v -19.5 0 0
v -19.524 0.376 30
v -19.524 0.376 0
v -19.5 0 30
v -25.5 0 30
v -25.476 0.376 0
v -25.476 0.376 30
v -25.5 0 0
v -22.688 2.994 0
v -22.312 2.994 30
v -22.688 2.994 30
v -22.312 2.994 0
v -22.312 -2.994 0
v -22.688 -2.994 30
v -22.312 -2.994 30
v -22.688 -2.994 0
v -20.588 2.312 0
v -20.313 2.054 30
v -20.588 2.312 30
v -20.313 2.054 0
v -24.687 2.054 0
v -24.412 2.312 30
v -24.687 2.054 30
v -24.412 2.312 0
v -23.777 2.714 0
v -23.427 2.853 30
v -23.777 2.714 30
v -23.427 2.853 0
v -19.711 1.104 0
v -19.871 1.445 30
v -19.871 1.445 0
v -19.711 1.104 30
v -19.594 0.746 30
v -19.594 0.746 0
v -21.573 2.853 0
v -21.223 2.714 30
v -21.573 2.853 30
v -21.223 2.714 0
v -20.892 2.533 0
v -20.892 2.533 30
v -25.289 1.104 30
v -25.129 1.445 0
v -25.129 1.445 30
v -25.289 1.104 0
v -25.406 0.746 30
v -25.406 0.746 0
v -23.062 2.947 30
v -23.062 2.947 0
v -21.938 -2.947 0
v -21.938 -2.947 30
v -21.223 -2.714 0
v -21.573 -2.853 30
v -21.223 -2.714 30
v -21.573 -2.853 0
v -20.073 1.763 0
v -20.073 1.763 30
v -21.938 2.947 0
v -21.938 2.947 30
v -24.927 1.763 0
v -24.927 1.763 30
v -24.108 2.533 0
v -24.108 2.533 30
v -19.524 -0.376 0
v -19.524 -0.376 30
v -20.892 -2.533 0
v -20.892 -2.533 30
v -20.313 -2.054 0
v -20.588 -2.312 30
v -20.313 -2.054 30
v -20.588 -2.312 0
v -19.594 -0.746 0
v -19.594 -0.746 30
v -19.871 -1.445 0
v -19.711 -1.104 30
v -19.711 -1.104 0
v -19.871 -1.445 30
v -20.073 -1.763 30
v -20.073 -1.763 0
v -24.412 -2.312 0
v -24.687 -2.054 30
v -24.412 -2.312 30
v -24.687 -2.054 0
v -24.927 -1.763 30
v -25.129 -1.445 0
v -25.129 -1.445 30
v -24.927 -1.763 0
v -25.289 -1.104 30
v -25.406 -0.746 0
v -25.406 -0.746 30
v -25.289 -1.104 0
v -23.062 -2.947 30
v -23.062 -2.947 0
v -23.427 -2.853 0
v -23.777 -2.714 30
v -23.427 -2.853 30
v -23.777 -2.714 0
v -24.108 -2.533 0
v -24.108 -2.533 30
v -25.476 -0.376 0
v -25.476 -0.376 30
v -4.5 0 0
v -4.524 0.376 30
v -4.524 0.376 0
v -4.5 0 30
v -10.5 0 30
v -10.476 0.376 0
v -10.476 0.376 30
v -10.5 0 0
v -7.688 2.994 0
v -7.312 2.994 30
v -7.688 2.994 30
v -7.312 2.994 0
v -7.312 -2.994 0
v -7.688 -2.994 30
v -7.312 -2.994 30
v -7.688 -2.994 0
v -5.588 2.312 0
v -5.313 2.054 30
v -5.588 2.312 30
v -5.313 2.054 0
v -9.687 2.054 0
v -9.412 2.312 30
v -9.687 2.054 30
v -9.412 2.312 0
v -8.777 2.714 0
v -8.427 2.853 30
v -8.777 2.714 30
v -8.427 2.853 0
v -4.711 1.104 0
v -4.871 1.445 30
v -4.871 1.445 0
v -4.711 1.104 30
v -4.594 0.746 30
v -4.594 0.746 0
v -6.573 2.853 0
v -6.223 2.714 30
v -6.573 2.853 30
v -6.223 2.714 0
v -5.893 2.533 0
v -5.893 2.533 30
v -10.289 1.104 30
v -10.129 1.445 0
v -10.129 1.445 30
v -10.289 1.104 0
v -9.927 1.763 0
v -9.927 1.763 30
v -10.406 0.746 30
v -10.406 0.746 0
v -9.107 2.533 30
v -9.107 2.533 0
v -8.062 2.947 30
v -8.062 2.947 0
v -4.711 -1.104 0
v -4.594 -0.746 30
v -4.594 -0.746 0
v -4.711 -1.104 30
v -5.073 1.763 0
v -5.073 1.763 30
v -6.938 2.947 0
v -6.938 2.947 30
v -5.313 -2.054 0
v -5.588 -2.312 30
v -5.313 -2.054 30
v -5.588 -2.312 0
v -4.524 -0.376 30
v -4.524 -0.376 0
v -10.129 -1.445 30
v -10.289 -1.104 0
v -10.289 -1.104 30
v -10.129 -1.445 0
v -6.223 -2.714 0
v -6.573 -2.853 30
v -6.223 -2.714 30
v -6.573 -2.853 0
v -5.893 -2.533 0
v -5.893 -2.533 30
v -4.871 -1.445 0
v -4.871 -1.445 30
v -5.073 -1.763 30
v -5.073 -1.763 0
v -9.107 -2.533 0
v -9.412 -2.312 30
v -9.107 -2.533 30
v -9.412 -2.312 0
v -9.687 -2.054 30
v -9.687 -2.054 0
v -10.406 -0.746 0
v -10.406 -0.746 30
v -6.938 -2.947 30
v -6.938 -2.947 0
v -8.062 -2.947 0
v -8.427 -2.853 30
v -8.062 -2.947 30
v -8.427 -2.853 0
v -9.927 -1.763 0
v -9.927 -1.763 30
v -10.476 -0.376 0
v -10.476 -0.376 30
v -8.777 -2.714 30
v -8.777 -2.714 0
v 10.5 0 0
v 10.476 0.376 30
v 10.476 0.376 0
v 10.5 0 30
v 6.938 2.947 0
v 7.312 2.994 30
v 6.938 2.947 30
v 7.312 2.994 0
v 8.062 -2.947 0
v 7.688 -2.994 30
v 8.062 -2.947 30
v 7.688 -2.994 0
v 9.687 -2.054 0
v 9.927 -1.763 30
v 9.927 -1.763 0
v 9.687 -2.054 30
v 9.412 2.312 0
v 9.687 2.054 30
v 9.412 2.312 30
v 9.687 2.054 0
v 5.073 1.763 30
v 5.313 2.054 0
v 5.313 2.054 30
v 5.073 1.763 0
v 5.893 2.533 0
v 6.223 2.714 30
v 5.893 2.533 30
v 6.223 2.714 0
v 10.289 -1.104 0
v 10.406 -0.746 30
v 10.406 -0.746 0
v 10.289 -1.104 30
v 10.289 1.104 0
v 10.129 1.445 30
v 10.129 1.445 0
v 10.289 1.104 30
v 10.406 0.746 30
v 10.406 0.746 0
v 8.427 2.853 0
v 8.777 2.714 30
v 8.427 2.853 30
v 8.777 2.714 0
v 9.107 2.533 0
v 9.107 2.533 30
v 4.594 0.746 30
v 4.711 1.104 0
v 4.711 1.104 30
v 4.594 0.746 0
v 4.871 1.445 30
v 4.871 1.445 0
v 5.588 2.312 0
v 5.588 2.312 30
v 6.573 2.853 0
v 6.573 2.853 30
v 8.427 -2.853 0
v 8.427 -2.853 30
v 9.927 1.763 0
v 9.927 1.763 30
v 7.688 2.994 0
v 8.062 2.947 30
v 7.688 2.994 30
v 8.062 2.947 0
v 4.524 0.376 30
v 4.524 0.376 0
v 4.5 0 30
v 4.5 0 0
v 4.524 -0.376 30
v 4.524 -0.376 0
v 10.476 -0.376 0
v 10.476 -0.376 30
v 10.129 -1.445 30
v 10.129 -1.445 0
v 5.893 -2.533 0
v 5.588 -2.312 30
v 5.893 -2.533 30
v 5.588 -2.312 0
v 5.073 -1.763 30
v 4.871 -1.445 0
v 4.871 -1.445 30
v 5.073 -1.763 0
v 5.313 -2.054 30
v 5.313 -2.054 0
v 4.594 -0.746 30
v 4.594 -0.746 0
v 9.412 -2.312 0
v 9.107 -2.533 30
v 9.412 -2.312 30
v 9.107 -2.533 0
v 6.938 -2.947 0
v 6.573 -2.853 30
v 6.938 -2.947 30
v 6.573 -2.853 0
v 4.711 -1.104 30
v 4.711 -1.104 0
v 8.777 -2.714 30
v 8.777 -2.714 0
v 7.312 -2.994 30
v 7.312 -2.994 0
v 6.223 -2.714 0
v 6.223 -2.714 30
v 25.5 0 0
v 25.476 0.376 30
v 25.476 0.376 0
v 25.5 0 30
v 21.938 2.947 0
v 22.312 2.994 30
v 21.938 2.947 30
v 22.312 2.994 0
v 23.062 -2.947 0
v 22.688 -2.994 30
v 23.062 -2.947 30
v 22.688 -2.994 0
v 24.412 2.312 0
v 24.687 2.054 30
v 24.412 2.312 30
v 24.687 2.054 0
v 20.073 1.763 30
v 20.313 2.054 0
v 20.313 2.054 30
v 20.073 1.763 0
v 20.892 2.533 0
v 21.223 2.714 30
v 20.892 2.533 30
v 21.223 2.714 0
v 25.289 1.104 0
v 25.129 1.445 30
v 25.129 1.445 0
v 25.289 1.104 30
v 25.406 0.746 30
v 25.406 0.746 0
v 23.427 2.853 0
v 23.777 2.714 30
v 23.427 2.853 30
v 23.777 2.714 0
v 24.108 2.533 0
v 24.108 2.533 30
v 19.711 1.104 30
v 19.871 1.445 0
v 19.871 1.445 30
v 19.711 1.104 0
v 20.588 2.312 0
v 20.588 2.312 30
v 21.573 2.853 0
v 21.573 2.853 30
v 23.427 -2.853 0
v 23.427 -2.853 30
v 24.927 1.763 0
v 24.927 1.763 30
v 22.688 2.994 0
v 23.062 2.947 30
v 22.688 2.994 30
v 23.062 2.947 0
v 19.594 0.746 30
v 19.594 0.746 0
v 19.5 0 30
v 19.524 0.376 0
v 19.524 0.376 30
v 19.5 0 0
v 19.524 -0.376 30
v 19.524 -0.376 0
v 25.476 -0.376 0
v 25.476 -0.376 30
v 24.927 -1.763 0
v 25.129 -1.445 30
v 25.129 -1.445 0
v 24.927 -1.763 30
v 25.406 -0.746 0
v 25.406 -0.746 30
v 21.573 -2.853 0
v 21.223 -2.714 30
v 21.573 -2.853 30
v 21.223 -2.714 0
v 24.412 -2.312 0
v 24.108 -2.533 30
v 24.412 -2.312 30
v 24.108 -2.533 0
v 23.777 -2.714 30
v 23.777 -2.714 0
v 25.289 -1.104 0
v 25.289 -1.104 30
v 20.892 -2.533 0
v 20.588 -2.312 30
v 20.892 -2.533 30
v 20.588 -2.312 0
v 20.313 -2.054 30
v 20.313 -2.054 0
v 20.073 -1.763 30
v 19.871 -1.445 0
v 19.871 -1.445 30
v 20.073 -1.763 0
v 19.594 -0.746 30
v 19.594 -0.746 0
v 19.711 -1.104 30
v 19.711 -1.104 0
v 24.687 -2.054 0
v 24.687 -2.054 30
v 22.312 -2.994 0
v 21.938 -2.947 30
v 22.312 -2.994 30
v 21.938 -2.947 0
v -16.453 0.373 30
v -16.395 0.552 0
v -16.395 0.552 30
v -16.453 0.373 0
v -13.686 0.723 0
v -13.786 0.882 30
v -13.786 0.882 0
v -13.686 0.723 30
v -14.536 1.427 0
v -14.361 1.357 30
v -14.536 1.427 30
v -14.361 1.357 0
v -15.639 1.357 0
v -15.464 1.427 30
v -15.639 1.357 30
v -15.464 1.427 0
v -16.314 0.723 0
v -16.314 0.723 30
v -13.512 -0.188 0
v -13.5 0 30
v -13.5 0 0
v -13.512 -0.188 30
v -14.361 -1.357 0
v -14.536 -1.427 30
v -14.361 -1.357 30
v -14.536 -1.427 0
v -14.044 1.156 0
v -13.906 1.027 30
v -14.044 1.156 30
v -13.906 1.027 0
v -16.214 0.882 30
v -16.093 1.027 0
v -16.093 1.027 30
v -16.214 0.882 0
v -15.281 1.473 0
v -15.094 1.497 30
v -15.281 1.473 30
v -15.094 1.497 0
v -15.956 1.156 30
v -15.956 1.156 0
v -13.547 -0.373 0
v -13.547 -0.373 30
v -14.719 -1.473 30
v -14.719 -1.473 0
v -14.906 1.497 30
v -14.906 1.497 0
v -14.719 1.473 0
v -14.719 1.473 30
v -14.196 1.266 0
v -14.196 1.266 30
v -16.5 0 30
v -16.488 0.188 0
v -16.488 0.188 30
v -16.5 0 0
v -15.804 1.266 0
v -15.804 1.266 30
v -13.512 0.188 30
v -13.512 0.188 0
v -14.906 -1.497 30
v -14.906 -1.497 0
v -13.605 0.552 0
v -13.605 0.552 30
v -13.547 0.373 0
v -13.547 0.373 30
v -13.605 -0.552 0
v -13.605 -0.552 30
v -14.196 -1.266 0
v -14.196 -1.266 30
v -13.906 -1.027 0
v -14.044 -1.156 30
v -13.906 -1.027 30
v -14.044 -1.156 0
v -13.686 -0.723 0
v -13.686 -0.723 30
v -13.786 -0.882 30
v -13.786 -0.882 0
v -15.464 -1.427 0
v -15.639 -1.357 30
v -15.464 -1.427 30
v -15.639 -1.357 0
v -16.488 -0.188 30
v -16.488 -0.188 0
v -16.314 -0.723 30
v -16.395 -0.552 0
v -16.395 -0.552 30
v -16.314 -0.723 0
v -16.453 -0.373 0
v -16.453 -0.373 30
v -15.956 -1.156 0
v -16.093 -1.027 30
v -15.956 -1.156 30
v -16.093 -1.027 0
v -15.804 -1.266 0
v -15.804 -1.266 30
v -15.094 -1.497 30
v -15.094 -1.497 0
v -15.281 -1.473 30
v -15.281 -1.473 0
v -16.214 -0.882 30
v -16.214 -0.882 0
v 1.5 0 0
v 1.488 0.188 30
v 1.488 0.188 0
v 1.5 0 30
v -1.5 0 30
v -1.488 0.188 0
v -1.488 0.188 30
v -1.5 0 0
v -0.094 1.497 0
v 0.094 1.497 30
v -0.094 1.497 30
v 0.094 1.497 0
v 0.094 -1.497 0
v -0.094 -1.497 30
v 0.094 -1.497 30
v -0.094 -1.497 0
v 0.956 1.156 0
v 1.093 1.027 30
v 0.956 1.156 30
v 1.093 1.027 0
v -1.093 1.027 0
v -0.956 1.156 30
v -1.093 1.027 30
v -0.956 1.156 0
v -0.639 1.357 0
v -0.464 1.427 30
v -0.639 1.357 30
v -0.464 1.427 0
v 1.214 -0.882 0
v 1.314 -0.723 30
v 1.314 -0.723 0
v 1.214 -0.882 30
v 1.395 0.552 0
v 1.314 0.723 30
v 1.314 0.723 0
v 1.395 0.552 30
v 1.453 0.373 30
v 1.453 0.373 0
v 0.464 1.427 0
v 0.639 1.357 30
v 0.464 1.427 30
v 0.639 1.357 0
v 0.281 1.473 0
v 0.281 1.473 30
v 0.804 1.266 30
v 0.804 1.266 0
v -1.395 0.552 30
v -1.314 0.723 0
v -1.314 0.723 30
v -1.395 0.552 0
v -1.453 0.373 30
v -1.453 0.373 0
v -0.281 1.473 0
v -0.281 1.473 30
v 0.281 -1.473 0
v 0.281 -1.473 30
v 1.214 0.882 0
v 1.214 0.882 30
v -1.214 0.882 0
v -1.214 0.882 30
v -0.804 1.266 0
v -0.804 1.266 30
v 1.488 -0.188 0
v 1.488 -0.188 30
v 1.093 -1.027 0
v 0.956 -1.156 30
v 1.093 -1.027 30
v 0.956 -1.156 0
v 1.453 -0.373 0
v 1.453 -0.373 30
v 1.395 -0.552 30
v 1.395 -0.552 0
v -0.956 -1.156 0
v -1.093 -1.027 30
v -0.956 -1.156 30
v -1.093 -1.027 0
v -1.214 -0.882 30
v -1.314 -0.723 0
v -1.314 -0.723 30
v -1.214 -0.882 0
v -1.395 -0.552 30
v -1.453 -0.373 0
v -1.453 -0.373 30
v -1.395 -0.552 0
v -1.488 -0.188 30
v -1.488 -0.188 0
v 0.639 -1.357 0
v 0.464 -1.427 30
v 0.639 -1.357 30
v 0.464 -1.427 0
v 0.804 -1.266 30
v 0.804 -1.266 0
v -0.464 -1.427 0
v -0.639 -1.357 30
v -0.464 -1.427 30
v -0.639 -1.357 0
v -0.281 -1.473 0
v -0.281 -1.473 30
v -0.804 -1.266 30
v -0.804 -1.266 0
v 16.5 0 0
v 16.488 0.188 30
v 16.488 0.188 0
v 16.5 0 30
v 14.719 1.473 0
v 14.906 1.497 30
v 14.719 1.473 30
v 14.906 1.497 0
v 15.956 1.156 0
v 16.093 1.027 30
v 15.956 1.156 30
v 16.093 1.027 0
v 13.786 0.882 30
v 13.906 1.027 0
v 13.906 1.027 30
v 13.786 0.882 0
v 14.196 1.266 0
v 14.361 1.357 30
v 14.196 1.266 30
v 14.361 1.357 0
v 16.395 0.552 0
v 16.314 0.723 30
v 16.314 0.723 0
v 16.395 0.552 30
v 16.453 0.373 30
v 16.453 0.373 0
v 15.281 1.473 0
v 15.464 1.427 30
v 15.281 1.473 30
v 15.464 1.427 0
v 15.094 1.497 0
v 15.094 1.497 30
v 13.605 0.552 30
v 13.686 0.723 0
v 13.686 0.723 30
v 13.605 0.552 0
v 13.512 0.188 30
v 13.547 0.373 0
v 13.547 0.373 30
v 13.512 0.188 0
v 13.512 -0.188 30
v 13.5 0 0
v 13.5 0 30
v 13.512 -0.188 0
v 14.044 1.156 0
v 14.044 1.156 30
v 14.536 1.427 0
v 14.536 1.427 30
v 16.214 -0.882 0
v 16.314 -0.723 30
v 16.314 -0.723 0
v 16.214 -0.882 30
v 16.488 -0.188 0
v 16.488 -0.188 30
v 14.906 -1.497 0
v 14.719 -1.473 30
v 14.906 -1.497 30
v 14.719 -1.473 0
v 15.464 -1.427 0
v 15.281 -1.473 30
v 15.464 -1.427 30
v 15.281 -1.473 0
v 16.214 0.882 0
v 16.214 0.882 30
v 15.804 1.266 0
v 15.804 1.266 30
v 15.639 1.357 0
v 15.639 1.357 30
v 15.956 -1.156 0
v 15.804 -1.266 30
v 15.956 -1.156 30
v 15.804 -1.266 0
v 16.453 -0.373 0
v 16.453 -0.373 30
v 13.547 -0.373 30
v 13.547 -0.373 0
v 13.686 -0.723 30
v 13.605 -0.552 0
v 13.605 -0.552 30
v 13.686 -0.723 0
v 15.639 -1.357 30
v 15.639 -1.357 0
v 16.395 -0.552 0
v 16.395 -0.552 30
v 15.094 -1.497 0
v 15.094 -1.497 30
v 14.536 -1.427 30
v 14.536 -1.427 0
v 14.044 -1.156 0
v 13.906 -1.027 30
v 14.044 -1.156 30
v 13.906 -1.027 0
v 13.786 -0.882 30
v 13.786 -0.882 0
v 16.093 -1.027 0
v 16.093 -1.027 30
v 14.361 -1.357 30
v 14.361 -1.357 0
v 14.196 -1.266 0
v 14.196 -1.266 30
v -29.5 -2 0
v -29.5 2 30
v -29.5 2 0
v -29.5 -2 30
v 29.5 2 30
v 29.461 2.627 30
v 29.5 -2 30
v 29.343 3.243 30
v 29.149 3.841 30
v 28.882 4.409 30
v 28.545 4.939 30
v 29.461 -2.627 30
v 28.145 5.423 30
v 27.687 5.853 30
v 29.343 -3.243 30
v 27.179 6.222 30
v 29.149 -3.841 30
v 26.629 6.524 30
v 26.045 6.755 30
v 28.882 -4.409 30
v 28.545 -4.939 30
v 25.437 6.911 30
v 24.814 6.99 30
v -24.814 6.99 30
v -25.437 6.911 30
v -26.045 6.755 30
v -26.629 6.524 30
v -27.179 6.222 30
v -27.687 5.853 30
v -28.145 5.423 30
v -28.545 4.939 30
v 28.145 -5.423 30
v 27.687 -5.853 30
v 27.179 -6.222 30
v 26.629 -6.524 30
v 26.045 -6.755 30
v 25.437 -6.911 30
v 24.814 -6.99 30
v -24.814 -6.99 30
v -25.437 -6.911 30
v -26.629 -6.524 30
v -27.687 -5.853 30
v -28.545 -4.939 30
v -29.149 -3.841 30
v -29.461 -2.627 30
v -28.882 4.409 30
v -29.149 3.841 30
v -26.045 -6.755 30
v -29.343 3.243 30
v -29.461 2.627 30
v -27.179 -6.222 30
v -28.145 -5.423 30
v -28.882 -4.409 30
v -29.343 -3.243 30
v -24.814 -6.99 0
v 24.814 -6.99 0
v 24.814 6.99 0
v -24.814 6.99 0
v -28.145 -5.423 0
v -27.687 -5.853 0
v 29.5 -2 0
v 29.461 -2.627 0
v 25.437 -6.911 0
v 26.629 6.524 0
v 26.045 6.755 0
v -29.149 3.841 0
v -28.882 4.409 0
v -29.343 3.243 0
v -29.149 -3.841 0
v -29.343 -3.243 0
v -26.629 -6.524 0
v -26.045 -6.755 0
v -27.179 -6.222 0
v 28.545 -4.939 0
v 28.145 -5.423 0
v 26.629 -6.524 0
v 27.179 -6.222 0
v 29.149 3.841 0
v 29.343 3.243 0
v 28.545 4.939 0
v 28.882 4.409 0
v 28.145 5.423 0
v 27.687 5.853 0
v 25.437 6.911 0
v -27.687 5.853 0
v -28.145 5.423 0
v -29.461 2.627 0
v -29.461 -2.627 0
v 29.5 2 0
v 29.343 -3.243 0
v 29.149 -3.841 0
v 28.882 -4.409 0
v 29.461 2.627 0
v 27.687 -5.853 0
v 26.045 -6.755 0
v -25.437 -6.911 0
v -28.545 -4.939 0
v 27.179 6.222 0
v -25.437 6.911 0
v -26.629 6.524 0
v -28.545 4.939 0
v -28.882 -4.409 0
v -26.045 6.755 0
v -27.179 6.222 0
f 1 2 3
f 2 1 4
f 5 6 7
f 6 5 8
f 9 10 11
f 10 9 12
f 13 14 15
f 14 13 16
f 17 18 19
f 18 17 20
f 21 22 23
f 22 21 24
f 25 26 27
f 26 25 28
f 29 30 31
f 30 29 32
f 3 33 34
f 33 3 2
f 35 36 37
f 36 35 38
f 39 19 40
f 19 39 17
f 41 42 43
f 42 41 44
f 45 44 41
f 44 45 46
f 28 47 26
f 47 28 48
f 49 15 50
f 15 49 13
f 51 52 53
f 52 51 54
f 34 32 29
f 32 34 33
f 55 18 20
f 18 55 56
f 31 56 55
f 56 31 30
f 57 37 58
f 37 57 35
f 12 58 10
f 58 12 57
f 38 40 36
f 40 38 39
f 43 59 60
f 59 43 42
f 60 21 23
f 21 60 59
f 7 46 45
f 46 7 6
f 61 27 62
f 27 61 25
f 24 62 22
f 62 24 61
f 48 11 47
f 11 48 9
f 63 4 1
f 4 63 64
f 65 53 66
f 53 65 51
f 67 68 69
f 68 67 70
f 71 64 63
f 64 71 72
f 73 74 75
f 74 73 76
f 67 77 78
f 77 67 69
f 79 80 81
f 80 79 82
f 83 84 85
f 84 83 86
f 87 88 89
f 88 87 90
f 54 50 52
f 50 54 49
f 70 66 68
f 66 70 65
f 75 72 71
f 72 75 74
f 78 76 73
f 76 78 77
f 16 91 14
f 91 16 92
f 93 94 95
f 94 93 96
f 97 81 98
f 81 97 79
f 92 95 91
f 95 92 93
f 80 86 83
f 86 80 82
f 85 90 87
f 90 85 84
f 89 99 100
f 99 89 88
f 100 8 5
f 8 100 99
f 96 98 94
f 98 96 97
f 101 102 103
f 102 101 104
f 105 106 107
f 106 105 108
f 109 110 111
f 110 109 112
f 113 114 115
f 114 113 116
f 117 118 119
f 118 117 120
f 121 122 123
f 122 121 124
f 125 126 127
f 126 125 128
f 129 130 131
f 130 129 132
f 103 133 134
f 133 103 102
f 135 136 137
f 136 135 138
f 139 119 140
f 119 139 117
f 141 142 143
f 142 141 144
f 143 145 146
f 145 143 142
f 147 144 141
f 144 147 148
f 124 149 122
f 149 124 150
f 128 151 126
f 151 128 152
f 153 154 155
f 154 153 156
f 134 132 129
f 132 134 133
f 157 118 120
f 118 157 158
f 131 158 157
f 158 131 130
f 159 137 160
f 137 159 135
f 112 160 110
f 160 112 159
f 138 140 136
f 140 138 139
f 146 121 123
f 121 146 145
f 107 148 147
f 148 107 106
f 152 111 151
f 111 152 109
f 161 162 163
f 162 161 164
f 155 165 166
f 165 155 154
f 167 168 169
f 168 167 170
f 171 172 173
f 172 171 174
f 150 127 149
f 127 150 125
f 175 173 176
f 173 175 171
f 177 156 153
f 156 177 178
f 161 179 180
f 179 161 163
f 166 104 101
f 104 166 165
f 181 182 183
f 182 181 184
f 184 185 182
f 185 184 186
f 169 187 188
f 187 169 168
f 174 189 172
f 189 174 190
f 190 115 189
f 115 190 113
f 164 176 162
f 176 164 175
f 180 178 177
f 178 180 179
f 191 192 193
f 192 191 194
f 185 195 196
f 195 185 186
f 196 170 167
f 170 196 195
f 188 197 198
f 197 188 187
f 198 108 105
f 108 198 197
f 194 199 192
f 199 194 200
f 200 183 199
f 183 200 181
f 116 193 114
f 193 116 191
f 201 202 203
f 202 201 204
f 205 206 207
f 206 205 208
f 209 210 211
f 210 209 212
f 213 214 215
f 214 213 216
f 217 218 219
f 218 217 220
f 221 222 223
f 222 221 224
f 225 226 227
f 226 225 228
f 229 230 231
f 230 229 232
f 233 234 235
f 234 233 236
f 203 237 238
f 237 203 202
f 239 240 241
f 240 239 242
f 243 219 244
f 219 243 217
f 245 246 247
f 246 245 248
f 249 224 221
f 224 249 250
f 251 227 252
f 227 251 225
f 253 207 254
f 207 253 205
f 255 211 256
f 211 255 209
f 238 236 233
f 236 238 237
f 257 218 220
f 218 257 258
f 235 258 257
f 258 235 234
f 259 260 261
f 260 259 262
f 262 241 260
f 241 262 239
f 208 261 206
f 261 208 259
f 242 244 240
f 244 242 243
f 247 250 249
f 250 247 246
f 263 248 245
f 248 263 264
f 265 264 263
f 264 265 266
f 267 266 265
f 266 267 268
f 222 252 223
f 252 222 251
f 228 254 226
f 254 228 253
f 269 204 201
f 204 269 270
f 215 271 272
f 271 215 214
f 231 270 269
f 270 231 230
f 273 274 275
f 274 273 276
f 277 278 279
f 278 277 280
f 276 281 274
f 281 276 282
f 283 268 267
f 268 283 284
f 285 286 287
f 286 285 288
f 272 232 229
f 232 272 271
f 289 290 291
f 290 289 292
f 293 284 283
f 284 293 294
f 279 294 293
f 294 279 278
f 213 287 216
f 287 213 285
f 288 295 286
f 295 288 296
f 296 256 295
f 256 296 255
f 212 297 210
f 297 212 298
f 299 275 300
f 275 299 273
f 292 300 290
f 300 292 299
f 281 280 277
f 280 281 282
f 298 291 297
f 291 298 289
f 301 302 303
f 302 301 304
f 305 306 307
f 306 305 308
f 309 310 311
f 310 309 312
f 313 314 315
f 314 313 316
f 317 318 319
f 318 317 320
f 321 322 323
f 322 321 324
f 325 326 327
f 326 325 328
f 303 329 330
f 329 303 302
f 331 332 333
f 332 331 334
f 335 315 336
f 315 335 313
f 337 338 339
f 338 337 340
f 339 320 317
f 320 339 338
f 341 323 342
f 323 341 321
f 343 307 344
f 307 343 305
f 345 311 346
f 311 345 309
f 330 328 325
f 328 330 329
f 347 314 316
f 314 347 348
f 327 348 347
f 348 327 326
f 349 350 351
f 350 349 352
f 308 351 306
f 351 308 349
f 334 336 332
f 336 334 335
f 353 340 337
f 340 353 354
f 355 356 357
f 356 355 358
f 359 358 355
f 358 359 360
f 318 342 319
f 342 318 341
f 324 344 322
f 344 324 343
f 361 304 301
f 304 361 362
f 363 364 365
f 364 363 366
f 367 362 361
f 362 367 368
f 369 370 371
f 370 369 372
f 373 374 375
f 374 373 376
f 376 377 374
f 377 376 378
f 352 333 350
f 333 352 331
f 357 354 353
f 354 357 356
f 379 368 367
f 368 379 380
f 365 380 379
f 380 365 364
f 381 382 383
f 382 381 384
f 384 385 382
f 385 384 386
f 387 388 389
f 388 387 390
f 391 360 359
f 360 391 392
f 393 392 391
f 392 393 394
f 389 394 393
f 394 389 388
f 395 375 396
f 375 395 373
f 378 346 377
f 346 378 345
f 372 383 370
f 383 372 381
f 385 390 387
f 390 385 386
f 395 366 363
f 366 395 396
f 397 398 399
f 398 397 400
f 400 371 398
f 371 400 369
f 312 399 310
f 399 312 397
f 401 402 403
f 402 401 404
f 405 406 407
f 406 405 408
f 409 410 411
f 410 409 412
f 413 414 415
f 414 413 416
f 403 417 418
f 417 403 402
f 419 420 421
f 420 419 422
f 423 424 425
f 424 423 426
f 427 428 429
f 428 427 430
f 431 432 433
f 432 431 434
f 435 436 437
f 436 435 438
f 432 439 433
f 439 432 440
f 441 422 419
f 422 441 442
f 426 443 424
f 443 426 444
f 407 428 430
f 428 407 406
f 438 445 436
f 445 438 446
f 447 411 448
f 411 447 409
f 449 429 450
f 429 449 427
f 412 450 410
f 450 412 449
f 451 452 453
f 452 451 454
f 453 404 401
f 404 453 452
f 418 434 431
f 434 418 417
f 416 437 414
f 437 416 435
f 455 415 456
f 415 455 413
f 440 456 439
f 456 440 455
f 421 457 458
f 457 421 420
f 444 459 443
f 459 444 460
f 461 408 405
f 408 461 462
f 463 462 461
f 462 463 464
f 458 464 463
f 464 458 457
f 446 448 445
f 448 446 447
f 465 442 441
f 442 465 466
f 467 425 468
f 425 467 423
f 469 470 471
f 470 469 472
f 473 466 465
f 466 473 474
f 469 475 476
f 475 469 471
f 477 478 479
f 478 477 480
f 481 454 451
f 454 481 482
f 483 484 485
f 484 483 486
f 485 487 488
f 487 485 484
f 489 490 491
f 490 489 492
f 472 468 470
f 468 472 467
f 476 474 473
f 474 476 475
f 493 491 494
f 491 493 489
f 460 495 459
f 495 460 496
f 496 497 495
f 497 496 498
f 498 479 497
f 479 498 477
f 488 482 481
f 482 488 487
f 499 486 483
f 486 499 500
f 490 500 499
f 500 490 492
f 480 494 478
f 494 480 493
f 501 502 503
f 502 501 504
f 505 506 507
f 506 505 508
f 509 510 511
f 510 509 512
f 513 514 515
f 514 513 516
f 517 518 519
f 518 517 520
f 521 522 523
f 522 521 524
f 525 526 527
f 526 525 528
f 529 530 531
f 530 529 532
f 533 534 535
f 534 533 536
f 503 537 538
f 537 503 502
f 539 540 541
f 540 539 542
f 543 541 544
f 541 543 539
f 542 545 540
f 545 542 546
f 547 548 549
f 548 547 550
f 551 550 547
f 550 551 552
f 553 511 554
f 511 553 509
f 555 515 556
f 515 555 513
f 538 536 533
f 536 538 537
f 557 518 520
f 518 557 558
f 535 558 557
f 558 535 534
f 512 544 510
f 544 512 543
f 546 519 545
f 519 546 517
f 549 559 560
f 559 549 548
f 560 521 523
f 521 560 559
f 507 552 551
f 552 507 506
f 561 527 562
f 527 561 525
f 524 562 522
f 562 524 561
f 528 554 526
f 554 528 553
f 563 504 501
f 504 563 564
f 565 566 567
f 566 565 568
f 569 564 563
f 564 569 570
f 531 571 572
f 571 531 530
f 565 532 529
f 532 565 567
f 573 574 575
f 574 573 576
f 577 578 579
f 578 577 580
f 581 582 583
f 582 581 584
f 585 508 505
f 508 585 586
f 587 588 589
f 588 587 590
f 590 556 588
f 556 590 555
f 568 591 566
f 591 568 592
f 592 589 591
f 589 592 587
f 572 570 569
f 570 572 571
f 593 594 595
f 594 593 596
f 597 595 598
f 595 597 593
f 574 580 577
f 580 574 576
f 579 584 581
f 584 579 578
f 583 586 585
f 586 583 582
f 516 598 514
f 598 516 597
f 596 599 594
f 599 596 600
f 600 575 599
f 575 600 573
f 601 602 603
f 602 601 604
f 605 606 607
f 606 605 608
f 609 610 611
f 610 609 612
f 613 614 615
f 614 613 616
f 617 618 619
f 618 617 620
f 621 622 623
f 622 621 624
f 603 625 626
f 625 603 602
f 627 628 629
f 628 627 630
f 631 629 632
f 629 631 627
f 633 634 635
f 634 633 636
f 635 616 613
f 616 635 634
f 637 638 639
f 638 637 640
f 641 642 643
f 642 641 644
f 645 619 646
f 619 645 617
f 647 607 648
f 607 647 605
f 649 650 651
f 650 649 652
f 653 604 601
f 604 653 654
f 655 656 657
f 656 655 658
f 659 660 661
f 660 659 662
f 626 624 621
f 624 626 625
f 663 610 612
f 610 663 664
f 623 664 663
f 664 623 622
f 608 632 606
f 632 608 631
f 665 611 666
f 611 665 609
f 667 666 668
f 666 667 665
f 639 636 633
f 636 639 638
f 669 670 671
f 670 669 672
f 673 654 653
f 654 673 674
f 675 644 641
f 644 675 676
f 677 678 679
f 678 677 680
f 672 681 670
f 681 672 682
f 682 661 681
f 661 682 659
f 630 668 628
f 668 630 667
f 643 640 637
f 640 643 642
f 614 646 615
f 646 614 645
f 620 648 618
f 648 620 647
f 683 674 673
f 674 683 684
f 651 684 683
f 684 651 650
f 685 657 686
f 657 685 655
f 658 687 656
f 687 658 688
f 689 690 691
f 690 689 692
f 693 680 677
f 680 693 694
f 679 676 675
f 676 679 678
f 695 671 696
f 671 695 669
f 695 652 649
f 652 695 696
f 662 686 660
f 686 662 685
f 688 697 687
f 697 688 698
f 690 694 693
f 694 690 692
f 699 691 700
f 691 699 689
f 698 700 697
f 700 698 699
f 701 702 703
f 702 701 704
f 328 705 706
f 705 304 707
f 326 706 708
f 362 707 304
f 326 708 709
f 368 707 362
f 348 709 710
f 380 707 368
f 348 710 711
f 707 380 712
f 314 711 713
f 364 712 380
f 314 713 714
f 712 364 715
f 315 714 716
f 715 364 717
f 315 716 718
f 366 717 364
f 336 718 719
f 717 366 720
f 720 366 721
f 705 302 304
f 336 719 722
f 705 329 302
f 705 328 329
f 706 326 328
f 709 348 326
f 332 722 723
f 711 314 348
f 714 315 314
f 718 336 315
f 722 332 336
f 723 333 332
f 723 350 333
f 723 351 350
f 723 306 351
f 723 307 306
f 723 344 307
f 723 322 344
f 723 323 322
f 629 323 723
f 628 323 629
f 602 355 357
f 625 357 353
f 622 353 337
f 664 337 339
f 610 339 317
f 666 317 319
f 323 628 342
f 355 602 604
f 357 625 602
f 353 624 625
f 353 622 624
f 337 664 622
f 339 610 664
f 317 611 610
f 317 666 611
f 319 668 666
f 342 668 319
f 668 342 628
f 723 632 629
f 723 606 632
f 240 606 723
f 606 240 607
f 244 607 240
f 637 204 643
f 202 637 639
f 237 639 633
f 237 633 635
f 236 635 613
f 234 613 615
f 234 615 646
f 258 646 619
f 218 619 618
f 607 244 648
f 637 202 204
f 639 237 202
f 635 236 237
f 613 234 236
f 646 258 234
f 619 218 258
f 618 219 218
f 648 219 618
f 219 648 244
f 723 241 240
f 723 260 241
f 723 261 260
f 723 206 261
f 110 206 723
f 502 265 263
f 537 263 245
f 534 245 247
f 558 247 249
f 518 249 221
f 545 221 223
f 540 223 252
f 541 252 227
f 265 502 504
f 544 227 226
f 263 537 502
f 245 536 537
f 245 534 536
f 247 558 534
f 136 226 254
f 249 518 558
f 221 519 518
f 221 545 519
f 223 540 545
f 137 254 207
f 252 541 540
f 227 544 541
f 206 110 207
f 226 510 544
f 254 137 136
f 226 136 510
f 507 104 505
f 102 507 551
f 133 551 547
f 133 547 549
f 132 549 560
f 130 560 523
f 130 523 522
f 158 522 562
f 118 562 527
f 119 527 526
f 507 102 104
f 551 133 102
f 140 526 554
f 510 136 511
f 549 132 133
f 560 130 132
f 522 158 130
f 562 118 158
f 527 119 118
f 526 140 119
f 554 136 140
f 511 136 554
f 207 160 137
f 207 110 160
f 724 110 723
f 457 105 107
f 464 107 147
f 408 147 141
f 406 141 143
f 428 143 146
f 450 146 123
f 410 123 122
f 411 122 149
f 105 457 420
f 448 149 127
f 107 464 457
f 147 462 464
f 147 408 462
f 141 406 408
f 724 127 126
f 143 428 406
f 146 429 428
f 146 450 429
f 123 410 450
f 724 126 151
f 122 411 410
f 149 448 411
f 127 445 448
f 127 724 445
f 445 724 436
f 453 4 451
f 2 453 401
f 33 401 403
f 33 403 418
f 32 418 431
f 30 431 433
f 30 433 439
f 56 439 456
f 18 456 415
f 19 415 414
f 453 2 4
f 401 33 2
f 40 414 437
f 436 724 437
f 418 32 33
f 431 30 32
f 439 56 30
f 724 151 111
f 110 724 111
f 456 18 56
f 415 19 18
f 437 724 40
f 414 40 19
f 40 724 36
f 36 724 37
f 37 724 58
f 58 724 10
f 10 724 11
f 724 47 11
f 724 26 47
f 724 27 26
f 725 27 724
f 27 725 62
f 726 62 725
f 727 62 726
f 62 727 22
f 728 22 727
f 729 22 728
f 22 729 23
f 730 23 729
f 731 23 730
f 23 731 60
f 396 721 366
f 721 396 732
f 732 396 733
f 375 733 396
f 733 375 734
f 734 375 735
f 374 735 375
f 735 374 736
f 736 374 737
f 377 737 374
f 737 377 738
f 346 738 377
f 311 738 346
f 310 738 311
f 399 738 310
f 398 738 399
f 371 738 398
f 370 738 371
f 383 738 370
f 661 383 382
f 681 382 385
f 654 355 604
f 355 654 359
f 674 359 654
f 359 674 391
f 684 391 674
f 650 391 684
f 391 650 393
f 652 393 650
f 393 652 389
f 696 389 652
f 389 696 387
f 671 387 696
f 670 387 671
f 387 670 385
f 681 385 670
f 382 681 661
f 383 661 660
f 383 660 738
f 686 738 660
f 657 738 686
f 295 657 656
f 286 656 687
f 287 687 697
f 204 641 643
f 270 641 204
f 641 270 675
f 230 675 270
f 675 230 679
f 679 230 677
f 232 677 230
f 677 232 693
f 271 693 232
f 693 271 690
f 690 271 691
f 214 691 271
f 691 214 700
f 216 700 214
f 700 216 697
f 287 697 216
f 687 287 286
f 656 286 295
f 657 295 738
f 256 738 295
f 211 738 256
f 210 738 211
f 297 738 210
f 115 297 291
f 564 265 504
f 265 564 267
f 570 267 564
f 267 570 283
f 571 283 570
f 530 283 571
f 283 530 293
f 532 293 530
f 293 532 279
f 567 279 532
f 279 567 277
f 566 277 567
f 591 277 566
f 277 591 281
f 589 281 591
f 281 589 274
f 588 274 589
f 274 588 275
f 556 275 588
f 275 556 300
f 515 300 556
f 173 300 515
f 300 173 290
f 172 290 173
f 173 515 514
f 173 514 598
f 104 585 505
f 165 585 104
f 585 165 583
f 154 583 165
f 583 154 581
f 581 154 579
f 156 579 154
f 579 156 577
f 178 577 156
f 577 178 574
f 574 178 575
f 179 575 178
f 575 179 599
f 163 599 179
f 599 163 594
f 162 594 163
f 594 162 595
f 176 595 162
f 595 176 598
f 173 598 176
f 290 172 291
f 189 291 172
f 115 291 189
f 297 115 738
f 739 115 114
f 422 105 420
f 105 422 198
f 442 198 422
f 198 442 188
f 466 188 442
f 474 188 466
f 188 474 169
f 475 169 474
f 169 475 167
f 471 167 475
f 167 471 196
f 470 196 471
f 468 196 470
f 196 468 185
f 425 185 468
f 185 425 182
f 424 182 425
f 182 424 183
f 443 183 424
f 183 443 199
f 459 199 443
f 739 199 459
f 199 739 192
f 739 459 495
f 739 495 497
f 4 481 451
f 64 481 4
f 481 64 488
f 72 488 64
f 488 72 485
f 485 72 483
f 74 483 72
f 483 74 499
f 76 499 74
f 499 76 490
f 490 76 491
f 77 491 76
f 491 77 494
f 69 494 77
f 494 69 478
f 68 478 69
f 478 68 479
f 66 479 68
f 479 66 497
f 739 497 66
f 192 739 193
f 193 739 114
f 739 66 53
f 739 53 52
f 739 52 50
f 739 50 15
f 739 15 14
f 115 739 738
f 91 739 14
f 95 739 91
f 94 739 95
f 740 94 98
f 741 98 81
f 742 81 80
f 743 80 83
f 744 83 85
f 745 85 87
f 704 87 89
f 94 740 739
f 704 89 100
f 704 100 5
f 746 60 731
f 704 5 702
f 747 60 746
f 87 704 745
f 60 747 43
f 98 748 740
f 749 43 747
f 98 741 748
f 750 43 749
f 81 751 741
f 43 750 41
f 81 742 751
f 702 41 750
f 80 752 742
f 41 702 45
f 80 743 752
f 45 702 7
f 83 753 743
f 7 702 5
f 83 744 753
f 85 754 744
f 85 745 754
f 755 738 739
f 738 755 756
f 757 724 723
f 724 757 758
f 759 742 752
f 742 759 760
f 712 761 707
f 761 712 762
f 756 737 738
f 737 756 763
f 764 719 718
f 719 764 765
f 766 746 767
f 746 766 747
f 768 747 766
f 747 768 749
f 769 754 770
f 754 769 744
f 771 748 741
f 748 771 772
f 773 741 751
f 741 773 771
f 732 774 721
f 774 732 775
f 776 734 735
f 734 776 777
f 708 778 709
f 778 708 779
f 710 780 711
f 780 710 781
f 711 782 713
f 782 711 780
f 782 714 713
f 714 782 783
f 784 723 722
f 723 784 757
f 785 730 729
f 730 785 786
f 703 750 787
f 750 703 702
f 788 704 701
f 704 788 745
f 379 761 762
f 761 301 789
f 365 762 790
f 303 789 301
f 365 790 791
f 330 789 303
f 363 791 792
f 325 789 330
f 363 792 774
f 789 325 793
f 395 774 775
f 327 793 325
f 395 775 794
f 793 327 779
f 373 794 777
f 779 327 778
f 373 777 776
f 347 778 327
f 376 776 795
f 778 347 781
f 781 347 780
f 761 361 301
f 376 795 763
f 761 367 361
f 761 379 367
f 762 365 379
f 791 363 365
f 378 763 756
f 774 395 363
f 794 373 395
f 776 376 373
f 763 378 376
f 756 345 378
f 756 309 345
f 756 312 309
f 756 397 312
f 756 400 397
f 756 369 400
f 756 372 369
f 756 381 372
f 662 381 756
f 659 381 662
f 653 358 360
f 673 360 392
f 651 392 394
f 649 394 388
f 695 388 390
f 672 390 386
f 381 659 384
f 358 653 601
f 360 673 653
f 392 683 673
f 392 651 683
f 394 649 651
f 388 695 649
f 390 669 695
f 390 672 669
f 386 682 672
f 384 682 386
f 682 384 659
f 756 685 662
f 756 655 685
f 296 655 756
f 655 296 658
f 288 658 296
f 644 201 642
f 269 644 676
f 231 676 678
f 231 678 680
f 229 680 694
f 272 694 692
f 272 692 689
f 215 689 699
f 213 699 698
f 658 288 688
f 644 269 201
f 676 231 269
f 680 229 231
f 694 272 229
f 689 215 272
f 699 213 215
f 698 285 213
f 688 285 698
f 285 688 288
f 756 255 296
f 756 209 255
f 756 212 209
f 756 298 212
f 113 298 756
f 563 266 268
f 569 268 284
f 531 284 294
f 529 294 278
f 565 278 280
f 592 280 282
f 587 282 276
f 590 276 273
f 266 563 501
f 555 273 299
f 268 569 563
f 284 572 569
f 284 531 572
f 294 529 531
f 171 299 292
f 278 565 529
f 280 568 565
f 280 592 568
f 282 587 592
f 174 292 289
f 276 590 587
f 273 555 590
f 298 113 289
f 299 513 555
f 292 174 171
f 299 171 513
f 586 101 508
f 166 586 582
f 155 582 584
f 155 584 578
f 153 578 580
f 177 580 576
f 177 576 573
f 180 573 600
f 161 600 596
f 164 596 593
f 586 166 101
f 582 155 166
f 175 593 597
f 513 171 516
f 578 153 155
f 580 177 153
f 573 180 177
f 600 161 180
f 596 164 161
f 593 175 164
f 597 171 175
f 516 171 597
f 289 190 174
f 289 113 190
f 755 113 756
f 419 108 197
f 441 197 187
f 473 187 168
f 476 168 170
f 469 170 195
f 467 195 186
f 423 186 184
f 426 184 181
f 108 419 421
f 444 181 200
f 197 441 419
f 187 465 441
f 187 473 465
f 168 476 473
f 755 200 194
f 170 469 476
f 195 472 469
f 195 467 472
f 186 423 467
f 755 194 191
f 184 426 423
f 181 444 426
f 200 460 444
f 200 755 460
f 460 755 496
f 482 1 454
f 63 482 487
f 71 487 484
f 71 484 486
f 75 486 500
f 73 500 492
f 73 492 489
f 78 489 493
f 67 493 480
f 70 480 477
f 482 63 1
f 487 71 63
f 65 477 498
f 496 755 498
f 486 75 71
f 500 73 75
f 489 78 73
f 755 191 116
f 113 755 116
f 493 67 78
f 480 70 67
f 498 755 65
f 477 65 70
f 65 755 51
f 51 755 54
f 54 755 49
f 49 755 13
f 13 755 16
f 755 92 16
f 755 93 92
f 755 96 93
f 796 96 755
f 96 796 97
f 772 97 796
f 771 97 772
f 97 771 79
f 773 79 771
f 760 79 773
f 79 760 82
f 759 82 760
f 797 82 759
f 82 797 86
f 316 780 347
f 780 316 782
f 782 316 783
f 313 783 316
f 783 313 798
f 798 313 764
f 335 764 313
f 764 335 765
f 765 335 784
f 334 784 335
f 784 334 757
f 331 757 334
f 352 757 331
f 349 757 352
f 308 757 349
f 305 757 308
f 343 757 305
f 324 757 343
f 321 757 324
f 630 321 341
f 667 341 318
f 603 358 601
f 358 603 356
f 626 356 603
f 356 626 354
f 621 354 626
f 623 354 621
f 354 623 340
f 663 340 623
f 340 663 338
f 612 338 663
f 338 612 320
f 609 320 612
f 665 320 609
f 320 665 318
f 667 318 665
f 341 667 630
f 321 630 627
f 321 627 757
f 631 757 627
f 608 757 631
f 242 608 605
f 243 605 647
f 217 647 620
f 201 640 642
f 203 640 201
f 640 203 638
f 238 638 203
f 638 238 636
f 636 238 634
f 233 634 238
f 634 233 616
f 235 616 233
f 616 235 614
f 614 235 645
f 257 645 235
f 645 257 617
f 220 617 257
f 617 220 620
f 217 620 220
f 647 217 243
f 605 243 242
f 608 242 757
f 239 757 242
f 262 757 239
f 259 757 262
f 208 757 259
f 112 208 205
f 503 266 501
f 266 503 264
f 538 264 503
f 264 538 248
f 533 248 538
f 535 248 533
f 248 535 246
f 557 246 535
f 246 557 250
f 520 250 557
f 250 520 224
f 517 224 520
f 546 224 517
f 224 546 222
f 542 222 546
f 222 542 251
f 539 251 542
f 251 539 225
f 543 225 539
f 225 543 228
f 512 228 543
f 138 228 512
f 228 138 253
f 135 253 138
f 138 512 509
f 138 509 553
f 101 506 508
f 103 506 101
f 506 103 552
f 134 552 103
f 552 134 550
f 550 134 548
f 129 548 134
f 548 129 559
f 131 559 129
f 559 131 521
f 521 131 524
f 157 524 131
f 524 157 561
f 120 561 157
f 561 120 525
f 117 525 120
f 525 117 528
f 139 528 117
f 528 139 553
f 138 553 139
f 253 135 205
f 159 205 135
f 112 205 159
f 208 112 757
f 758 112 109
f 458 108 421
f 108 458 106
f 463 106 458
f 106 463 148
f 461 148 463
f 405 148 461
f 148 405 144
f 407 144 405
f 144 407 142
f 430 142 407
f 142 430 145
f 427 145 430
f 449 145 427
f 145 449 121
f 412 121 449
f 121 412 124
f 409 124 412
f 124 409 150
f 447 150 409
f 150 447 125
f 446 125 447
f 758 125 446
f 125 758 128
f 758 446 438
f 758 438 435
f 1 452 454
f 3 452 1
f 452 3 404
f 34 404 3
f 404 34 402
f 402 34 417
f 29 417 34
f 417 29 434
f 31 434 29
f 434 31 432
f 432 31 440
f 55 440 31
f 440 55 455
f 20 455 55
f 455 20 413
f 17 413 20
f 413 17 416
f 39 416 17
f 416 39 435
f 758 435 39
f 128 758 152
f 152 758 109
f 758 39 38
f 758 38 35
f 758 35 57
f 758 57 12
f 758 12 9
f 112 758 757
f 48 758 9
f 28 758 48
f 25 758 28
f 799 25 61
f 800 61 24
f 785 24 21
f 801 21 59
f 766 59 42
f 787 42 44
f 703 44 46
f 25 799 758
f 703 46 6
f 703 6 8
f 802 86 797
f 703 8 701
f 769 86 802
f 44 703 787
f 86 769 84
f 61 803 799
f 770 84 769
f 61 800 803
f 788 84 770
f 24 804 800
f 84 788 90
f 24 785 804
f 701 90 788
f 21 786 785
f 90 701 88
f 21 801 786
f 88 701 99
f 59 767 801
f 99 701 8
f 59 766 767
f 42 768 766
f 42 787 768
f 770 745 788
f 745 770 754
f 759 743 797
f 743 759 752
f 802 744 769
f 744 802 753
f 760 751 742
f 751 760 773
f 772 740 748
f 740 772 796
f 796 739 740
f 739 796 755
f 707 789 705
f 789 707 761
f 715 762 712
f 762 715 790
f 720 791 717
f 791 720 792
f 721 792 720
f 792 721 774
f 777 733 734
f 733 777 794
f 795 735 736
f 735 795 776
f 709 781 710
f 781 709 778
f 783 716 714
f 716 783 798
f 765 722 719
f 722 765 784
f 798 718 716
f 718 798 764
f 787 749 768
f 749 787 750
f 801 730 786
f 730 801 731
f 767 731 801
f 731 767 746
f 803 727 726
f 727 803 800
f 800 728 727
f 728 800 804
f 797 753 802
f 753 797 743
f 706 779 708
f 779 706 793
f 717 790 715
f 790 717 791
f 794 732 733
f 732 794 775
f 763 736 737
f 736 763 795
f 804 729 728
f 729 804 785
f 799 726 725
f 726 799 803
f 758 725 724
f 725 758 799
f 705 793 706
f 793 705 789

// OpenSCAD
$fn = 50;


difference() {
	union() {
		*color(alpha = 1.0000000000, c = "gray") {
			translate(v = [0, 7, 0]) {
				linear_extrude(height = 1) {
					text(font = "Arial:style=Bold", halign = "center", size = 4.5000000000, text = "COMMENT plate main", valign = "center");
				}
			}
		}
		*color(alpha = 1.0000000000, c = "gray") {
			translate(v = [0, 14, 0]) {
				linear_extrude(height = 1) {
					text(font = "Arial:style=Bold", halign = "center", size = 4.5000000000, text = "COMMENT description oobb_plate_shape_p_type_30_depth_4_width_1_height_30_thickness_true_both_holes", valign = "center");
				}
			}
		}
		hull() {
			translate(v = [-24.5000000000, 2.0000000000, 0]) {
				cylinder(h = 30, r = 5);
			}
			translate(v = [24.5000000000, 2.0000000000, 0]) {
				cylinder(h = 30, r = 5);
			}
			translate(v = [-24.5000000000, -2.0000000000, 0]) {
				cylinder(h = 30, r = 5);
			}
			translate(v = [24.5000000000, -2.0000000000, 0]) {
				cylinder(h = 30, r = 5);
			}
		}
	}
	union() {
		*color(alpha = 1.0000000000, c = "gray") {
			translate(v = [0, 7, 0]) {
				linear_extrude(height = 1) {
					text(font = "Arial:style=Bold", halign = "center", size = 4.5000000000, text = "COMMENT holes main", valign = "center");
				}
			}
		}
		*color(alpha = 1.0000000000, c = "gray") {
			translate(v = [0, 14, 0]) {
				linear_extrude(height = 1) {
					text(font = "Arial:style=Bold", halign = "center", size = 4.5000000000, text = "COMMENT description oobb_holes_shape_n_type_4_width_1_height_30_thickness_true_both_holes", valign = "center");
				}
			}
		}
		translate(v = [-22.5000000000, 0.0000000000, 0]) {
			translate(v = [0, 0, -50]) {
				cylinder(h = 100, r = 3.0000000000);
			}
		}
		translate(v = [-7.5000000000, 0.0000000000, 0]) {
			translate(v = [0, 0, -50]) {
				cylinder(h = 100, r = 3.0000000000);
			}
		}
		translate(v = [7.5000000000, 0.0000000000, 0]) {
			translate(v = [0, 0, -50]) {
				cylinder(h = 100, r = 3.0000000000);
			}
		}
		translate(v = [22.5000000000, 0.0000000000, 0]) {
			translate(v = [0, 0, -50]) {
				cylinder(h = 100, r = 3.0000000000);
			}
		}
		translate(v = [-22.5000000000, 0.0000000000, 0]) {
			translate(v = [0, 0, -50]) {
				cylinder(h = 100, r = 1.5000000000);
			}
		}
		translate(v = [-15.0000000000, 0.0000000000, 0]) {
			translate(v = [0, 0, -50]) {
				cylinder(h = 100, r = 1.5000000000);
			}
		}
		translate(v = [-7.5000000000, 0.0000000000, 0]) {
			translate(v = [0, 0, -50]) {
				cylinder(h = 100, r = 1.5000000000);
			}
		}
		translate(v = [0, 0, -50]) {
			cylinder(h = 100, r = 1.5000000000);
		}
		translate(v = [7.5000000000, 0.0000000000, 0]) {
			translate(v = [0, 0, -50]) {
				cylinder(h = 100, r = 1.5000000000);
			}
		}
		translate(v = [15.0000000000, 0.0000000000, 0]) {
			translate(v = [0, 0, -50]) {
				cylinder(h = 100, r = 1.5000000000);
			}
		}
		translate(v = [22.5000000000, 0.0000000000, 0]) {
			translate(v = [0, 0, -50]) {
				cylinder(h = 100, r = 1.5000000000);
			}
		}
	}
}
